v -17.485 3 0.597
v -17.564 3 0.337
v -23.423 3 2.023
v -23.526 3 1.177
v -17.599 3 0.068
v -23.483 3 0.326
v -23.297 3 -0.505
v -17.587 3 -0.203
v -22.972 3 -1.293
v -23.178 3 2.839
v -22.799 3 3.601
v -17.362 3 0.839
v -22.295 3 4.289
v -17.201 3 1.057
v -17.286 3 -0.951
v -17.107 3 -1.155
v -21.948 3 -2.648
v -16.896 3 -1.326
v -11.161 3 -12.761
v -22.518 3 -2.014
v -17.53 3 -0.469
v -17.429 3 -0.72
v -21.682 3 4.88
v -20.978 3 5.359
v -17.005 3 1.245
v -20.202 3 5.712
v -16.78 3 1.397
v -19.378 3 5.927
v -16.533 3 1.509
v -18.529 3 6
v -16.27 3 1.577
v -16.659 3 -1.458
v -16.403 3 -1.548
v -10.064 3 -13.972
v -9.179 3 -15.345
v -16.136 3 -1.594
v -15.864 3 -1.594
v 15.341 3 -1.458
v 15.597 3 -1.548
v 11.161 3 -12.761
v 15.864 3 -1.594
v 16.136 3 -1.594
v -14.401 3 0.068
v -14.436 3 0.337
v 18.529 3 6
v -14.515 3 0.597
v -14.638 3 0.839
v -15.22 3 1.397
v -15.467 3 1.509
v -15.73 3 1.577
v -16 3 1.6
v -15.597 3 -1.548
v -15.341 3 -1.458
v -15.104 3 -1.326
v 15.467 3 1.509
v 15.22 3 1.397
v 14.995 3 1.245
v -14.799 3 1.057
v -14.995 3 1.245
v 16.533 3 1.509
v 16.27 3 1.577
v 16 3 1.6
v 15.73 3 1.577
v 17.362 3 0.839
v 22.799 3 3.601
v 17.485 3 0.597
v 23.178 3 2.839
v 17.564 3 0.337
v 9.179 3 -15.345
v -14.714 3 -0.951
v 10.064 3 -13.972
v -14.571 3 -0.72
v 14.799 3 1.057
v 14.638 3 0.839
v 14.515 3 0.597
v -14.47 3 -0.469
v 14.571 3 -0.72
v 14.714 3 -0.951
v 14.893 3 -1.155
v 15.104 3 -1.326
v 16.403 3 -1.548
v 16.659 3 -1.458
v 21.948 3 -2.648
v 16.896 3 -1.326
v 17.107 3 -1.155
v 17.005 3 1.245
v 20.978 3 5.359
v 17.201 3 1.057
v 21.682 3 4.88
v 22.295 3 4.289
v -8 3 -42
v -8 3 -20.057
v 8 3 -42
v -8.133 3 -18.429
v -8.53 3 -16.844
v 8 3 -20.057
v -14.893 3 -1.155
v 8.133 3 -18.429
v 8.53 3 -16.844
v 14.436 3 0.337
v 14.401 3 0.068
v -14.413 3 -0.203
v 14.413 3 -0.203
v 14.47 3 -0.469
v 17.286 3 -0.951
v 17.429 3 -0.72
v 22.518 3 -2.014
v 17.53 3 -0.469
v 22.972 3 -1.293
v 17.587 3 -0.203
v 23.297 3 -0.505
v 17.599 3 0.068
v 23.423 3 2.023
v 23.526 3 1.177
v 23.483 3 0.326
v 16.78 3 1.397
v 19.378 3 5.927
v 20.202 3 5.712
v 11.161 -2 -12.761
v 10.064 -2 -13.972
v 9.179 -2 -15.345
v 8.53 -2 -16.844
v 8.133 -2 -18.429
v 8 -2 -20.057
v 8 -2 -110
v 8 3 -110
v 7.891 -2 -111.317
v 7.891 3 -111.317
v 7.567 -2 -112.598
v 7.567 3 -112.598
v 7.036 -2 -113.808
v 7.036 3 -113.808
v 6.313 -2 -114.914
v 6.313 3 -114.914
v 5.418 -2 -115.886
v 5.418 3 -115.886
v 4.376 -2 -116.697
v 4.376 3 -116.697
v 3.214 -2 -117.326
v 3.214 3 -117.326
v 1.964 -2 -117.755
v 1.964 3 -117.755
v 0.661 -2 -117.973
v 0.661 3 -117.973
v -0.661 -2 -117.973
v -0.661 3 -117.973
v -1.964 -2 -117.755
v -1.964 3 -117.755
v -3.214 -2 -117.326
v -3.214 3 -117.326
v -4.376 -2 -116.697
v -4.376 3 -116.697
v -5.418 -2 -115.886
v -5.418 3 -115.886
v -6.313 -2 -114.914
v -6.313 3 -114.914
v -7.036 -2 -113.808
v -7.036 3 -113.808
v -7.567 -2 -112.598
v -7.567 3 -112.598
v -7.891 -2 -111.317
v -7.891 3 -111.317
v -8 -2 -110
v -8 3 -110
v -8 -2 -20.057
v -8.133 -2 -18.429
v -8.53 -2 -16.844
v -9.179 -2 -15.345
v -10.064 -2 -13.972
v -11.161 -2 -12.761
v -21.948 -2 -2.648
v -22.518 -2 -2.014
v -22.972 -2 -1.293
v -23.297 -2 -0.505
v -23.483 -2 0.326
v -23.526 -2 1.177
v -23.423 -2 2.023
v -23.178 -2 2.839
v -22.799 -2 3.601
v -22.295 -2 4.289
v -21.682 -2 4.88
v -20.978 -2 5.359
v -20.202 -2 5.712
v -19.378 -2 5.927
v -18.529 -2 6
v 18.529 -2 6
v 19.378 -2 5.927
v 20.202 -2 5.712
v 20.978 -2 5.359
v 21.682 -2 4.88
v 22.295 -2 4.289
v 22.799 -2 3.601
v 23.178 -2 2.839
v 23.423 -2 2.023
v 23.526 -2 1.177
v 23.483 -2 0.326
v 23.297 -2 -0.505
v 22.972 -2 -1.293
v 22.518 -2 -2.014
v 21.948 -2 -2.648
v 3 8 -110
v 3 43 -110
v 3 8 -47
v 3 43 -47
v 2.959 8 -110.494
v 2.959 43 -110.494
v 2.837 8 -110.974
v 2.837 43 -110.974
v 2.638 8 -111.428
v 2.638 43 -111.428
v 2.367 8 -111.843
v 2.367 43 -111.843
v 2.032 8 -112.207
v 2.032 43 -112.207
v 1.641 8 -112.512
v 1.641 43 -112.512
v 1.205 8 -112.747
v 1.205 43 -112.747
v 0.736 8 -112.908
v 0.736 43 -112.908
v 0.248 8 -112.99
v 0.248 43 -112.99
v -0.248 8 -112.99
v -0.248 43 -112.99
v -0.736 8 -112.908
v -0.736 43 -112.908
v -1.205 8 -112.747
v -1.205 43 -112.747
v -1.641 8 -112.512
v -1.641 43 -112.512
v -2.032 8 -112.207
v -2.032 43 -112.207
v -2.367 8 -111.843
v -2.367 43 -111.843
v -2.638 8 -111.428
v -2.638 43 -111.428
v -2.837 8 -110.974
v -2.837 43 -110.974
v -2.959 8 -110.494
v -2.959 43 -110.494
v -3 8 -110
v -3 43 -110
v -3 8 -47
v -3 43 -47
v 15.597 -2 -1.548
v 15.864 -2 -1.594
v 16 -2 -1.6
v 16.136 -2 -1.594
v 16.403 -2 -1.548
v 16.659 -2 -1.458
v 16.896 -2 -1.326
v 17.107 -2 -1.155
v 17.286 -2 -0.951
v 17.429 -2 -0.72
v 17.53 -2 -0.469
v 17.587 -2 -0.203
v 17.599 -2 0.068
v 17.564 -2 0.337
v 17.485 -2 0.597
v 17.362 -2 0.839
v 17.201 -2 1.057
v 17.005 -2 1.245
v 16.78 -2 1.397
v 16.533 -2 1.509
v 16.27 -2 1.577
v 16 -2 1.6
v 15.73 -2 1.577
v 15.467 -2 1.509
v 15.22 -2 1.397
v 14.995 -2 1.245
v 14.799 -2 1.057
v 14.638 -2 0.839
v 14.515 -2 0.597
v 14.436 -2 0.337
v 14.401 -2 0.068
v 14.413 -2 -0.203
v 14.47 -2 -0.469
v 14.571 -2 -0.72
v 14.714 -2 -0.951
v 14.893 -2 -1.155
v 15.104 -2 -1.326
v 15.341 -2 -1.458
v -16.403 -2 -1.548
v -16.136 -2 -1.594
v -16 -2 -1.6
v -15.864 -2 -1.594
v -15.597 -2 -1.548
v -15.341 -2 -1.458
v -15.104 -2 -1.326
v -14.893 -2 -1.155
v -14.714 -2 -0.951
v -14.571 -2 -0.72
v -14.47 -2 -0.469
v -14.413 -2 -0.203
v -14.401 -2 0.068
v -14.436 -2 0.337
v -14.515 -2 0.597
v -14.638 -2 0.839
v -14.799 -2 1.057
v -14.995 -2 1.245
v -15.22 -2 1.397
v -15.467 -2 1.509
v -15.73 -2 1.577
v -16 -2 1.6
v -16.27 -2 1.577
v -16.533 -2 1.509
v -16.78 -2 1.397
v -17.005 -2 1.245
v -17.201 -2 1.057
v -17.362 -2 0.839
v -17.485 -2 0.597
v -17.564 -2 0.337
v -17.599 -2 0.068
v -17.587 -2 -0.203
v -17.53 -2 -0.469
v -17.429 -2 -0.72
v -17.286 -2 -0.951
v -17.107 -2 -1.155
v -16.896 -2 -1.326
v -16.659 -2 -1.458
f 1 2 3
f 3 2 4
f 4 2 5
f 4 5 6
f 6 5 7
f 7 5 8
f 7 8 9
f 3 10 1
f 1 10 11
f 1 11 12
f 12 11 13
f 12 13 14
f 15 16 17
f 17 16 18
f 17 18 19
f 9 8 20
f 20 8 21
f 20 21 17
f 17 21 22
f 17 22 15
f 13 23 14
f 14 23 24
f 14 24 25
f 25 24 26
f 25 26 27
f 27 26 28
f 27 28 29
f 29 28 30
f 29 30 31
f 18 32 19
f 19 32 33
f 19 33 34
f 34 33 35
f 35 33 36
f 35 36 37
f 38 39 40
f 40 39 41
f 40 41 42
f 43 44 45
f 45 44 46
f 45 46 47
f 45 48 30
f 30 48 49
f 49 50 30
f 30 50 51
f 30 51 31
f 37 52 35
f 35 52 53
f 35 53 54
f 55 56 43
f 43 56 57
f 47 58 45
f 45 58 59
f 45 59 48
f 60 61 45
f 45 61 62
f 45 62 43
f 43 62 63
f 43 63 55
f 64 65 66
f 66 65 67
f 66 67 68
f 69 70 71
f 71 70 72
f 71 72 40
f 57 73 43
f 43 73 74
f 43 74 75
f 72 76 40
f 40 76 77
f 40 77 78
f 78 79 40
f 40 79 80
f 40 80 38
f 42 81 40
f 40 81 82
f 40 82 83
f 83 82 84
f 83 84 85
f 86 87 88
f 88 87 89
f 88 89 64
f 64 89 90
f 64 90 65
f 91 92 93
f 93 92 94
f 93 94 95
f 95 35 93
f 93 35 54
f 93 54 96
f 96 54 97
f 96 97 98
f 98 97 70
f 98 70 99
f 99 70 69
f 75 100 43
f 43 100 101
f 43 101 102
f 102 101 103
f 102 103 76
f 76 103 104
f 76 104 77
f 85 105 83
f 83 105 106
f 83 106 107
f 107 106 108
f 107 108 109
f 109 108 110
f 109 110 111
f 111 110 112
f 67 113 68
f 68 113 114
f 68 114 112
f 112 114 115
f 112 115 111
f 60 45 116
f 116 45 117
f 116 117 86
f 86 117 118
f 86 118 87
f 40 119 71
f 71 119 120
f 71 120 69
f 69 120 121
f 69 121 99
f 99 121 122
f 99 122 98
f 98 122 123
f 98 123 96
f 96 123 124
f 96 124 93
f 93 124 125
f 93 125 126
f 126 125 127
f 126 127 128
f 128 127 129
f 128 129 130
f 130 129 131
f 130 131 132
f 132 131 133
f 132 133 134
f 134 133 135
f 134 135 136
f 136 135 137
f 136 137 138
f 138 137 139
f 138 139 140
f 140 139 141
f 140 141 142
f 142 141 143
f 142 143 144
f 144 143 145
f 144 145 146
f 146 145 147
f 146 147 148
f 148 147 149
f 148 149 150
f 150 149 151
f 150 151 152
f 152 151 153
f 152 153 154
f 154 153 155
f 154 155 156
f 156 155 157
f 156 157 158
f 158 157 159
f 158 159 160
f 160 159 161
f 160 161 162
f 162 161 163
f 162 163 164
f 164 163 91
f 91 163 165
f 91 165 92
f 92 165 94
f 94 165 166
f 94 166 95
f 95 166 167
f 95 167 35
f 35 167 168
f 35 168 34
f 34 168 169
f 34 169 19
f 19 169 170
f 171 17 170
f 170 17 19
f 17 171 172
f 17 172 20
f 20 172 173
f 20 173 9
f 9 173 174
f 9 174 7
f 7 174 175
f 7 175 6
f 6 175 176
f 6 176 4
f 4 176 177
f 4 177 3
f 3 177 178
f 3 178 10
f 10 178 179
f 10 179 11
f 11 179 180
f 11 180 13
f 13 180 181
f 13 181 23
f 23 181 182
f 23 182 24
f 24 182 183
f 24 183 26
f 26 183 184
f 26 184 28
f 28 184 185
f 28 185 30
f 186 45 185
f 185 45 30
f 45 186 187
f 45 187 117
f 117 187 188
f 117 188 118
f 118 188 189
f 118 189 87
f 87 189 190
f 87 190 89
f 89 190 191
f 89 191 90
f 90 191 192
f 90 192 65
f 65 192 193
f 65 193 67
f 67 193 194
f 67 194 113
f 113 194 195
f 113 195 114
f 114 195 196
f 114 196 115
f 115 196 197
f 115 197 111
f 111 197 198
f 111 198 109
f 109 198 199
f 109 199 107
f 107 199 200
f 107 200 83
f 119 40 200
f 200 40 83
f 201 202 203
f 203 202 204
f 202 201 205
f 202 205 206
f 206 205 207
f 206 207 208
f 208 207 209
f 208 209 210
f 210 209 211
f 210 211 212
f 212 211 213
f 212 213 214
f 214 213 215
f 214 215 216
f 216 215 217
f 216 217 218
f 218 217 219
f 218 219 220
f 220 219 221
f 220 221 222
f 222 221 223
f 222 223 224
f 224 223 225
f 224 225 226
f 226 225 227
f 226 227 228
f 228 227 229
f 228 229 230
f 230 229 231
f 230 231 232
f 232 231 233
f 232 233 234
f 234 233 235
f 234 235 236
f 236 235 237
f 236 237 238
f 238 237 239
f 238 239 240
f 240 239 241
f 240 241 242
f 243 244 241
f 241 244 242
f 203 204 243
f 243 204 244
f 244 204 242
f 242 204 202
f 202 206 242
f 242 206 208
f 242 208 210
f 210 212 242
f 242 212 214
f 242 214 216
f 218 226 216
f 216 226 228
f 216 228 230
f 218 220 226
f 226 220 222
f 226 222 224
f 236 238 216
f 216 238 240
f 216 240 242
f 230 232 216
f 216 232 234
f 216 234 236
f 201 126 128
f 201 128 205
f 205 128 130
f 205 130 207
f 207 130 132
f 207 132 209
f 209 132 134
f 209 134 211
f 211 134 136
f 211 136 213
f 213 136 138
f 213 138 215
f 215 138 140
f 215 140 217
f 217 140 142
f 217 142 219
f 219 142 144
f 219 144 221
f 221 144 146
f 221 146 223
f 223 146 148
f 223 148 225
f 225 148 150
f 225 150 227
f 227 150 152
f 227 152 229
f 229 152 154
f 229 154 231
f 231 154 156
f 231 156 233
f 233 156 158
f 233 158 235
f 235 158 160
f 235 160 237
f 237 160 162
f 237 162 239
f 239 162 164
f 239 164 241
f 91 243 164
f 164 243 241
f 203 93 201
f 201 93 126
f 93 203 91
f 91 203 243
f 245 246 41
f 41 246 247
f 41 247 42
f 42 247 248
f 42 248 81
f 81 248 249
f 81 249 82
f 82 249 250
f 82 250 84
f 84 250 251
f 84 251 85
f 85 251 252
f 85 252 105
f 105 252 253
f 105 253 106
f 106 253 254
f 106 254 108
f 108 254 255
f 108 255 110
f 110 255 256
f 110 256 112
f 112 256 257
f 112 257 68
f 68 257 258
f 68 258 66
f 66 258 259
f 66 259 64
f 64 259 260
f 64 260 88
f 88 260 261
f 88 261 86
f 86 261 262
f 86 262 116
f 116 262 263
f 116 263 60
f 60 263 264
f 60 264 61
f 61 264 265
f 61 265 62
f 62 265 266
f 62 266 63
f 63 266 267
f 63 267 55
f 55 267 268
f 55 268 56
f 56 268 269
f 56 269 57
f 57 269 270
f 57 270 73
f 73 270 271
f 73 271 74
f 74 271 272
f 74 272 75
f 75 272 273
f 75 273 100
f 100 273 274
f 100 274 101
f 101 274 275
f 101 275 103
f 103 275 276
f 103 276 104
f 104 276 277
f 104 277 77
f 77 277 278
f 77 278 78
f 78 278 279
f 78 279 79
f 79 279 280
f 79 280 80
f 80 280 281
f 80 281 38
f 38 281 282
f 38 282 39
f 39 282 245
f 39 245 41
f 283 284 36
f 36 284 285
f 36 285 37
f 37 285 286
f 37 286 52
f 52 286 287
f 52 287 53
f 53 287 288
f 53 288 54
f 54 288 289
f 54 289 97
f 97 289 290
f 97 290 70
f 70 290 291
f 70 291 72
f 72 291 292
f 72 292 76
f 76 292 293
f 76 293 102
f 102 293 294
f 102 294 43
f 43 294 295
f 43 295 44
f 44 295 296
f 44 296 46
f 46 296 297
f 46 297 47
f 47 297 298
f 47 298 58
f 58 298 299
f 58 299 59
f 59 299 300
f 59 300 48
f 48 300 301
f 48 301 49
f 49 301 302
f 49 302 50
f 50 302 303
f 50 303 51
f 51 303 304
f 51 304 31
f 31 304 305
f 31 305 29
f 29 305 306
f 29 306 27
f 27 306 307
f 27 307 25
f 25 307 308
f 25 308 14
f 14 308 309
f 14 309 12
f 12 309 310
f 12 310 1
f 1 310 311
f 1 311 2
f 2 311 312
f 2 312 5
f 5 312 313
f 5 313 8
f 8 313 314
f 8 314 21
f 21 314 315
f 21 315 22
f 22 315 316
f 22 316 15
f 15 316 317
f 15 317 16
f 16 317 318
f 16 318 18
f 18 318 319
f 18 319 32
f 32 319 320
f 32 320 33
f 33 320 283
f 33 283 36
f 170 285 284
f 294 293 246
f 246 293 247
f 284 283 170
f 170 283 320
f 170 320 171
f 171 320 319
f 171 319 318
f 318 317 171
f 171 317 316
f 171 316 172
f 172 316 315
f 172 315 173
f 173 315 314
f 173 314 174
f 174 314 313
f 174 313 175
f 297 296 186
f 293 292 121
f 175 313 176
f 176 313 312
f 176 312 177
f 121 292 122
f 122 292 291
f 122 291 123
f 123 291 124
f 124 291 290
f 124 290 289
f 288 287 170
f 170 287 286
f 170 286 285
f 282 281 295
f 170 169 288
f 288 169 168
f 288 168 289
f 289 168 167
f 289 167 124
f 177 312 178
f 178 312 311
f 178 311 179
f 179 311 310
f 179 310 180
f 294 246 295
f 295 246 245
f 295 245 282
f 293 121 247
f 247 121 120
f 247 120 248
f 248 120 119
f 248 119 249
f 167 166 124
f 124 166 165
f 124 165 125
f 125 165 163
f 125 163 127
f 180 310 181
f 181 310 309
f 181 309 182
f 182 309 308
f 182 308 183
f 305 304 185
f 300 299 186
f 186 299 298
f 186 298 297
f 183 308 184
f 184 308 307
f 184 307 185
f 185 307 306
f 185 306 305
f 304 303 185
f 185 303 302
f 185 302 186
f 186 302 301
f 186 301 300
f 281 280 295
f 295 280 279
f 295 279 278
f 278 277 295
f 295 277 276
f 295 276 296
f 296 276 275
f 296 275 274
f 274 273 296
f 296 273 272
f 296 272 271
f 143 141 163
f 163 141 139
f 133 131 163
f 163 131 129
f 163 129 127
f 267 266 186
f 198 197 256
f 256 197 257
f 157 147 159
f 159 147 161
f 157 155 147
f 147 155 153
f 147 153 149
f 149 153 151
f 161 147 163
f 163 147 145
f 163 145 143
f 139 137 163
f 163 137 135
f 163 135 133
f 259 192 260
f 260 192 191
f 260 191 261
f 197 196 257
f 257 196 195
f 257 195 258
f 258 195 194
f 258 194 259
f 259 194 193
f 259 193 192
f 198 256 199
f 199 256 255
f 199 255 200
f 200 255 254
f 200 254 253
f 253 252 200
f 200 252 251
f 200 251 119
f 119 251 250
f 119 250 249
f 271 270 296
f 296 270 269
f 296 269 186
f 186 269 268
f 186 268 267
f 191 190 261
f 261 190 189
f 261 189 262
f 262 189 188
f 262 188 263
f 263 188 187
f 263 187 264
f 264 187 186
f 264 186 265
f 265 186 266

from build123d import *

# Parameters (mm, degrees)
SKETCH1_R           = 1
BOSS_EXTRUDE1_DEPTH = 3
BOSS_EXTRUDE2_DEPTH = 40
CHAMFER1_SIZE       = 5
SKETCH3_R           = 1.6
CUT_EXTRUDE1_DEPTH  = 10
BOSS_EXTRUDE3_START = -3
SKETCH4_R           = 1
BOSS_EXTRUDE3_DEPTH = 3
BOSS_EXTRUDE4_START = 2
SKETCH5_R           = 1.6
BOSS_EXTRUDE4_DEPTH = 2


with BuildPart() as part:
    # Sketch1 → Boss-Extrude1 (new body)
    with BuildSketch(Plane(origin=(0, 0, 0), x_dir=(1, 0, 0), z_dir=(0, 1, 0))):
        with BuildLine():
            Line((-18.528780813, -6), (18.528780813, -6))
            ThreePointArc((18.528780813, -6), (23.17842758, -2.838691096), (21.948486458, 2.647686021))
            Line((21.948486458, 2.647686021), (11.160588711, 12.761340158))
            ThreePointArc((11.160588711, 12.761340158), (8.824104597, 16.081420568), (8, 20.056712199))
            Line((8, 20.056712199), (8, 95))
            Line((8, 95), (8, 110))
            ThreePointArc((8, 110), (0, 118), (-8, 110))
            Line((-8, 110), (-8, 95))
            Line((-8, 95), (-8, 20.056712199))
            ThreePointArc((-8, 20.056712199), (-8.824104597, 16.081420568), (-11.160588711, 12.761340158))
            Line((-11.160588711, 12.761340158), (-21.948486458, 2.647686021))
            ThreePointArc((-21.948486458, 2.647686021), (-23.17842758, -2.838691096), (-18.528780813, -6))
        make_face()
        with Locations(Location((0, 15, 0), (0, 0, 270))):
            Circle(SKETCH1_R, mode=Mode.SUBTRACT)
        with Locations(Location((-16, 0, 0), (0, 0, 270))):
            Circle(SKETCH1_R, mode=Mode.SUBTRACT)
        with Locations(Location((16, 0, 0), (0, 0, 270))):
            Circle(SKETCH1_R, mode=Mode.SUBTRACT)
    extrude(amount=BOSS_EXTRUDE1_DEPTH)

    # Sketch2 → Boss-Extrude2 (add)
    with BuildSketch(Plane(origin=(0, 3, 0), x_dir=(1, 0, 0), z_dir=(0, 1, 0))):
        with BuildLine():
            Line((3, 47), (-3, 47))
            Line((-3, 47), (-3, 95))
            Line((-3, 95), (-3, 110))
            ThreePointArc((-3, 110), (0, 113), (3, 110))
            Line((3, 110), (3, 95))
            Line((3, 95), (3, 47))
        make_face()
    extrude(amount=BOSS_EXTRUDE2_DEPTH)

    # Chamfer1
    chamfer1_edges = [part.edges().sort_by_distance(p)[0] for p in [
        (3, 3, -78.5),
        (0, 3, -113),
        (-3, 3, -78.5),
        (0, 3, -47),
    ]]
    chamfer(chamfer1_edges, length=CHAMFER1_SIZE - 0.0001)  # a hair under: the kernel refuses the full size

    # Sketch3 → Cut-Extrude1 (cut)
    with BuildSketch(Plane(origin=(0, 3, 0), x_dir=(1, 0, 0), z_dir=(0, 1, 0))):
        with Locations(Location((-16, 0, 0), (0, 0, 270))):
            Circle(SKETCH3_R)
        with Locations(Location((16, 0, 0), (0, 0, 270))):
            Circle(SKETCH3_R)
    extrude(amount=-CUT_EXTRUDE1_DEPTH, mode=Mode.SUBTRACT)

    # Sketch4 → Boss-Extrude3 (add)
    with BuildSketch(Plane(origin=(0, 3, 0), x_dir=(1, 0, 0), z_dir=(0, 1, 0)).offset(BOSS_EXTRUDE3_START)):
        with Locations((0, 15)):
            Circle(SKETCH4_R)
    extrude(amount=BOSS_EXTRUDE3_DEPTH)

    # Sketch5 → Boss-Extrude4 (add)
    with BuildSketch(Plane.XZ.offset(BOSS_EXTRUDE4_START)):
        with BuildLine():
            Line((11.160588711, -12.761340158), (21.948486458, -2.647686021))
            ThreePointArc((21.948486458, -2.647686021), (23.17842758, 2.838691096), (18.528780813, 6))
            Line((18.528780813, 6), (-18.528780813, 6))
            ThreePointArc((-18.528780813, 6), (-23.17842758, 2.838691096), (-21.948486458, -2.647686021))
            Line((-21.948486458, -2.647686021), (-11.160588711, -12.761340158))
            ThreePointArc((-11.160588711, -12.761340158), (-8.824104597, -16.081420568), (-8, -20.056712199))
            Line((-8, -20.056712199), (-8, -110))
            ThreePointArc((-8, -110), (0, -118), (8, -110))
            Line((8, -110), (8, -20.056712199))
            ThreePointArc((8, -20.056712199), (8.824104597, -16.081420568), (11.160588711, -12.761340158))
        make_face()
        with Locations(Location((-16, 0, 0), (0, 0, 90))):
            Circle(SKETCH5_R, mode=Mode.SUBTRACT)
        with Locations(Location((16, 0, 0), (0, 0, 90))):
            Circle(SKETCH5_R, mode=Mode.SUBTRACT)
    extrude(amount=-BOSS_EXTRUDE4_DEPTH)


solid = part.part
